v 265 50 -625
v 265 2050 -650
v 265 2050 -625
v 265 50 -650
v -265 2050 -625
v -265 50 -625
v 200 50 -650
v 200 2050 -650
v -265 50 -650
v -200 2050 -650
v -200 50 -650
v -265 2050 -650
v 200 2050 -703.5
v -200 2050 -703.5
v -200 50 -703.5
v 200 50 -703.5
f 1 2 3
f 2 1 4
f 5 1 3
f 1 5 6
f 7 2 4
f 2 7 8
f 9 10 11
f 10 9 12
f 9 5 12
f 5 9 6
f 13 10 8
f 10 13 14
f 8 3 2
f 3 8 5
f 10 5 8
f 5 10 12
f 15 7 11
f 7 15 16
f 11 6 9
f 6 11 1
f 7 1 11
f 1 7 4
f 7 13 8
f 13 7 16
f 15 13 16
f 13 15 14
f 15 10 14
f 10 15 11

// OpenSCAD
color("#676767")
union() {
  translate([0, 1050, 900+12.5-1550.])
    cube([ 530, 2000, 25], center=true);
  translate([0, 1050, 900+12.5-33-1550.])
    cube([ 400, 2000, 66], center=true);
}
